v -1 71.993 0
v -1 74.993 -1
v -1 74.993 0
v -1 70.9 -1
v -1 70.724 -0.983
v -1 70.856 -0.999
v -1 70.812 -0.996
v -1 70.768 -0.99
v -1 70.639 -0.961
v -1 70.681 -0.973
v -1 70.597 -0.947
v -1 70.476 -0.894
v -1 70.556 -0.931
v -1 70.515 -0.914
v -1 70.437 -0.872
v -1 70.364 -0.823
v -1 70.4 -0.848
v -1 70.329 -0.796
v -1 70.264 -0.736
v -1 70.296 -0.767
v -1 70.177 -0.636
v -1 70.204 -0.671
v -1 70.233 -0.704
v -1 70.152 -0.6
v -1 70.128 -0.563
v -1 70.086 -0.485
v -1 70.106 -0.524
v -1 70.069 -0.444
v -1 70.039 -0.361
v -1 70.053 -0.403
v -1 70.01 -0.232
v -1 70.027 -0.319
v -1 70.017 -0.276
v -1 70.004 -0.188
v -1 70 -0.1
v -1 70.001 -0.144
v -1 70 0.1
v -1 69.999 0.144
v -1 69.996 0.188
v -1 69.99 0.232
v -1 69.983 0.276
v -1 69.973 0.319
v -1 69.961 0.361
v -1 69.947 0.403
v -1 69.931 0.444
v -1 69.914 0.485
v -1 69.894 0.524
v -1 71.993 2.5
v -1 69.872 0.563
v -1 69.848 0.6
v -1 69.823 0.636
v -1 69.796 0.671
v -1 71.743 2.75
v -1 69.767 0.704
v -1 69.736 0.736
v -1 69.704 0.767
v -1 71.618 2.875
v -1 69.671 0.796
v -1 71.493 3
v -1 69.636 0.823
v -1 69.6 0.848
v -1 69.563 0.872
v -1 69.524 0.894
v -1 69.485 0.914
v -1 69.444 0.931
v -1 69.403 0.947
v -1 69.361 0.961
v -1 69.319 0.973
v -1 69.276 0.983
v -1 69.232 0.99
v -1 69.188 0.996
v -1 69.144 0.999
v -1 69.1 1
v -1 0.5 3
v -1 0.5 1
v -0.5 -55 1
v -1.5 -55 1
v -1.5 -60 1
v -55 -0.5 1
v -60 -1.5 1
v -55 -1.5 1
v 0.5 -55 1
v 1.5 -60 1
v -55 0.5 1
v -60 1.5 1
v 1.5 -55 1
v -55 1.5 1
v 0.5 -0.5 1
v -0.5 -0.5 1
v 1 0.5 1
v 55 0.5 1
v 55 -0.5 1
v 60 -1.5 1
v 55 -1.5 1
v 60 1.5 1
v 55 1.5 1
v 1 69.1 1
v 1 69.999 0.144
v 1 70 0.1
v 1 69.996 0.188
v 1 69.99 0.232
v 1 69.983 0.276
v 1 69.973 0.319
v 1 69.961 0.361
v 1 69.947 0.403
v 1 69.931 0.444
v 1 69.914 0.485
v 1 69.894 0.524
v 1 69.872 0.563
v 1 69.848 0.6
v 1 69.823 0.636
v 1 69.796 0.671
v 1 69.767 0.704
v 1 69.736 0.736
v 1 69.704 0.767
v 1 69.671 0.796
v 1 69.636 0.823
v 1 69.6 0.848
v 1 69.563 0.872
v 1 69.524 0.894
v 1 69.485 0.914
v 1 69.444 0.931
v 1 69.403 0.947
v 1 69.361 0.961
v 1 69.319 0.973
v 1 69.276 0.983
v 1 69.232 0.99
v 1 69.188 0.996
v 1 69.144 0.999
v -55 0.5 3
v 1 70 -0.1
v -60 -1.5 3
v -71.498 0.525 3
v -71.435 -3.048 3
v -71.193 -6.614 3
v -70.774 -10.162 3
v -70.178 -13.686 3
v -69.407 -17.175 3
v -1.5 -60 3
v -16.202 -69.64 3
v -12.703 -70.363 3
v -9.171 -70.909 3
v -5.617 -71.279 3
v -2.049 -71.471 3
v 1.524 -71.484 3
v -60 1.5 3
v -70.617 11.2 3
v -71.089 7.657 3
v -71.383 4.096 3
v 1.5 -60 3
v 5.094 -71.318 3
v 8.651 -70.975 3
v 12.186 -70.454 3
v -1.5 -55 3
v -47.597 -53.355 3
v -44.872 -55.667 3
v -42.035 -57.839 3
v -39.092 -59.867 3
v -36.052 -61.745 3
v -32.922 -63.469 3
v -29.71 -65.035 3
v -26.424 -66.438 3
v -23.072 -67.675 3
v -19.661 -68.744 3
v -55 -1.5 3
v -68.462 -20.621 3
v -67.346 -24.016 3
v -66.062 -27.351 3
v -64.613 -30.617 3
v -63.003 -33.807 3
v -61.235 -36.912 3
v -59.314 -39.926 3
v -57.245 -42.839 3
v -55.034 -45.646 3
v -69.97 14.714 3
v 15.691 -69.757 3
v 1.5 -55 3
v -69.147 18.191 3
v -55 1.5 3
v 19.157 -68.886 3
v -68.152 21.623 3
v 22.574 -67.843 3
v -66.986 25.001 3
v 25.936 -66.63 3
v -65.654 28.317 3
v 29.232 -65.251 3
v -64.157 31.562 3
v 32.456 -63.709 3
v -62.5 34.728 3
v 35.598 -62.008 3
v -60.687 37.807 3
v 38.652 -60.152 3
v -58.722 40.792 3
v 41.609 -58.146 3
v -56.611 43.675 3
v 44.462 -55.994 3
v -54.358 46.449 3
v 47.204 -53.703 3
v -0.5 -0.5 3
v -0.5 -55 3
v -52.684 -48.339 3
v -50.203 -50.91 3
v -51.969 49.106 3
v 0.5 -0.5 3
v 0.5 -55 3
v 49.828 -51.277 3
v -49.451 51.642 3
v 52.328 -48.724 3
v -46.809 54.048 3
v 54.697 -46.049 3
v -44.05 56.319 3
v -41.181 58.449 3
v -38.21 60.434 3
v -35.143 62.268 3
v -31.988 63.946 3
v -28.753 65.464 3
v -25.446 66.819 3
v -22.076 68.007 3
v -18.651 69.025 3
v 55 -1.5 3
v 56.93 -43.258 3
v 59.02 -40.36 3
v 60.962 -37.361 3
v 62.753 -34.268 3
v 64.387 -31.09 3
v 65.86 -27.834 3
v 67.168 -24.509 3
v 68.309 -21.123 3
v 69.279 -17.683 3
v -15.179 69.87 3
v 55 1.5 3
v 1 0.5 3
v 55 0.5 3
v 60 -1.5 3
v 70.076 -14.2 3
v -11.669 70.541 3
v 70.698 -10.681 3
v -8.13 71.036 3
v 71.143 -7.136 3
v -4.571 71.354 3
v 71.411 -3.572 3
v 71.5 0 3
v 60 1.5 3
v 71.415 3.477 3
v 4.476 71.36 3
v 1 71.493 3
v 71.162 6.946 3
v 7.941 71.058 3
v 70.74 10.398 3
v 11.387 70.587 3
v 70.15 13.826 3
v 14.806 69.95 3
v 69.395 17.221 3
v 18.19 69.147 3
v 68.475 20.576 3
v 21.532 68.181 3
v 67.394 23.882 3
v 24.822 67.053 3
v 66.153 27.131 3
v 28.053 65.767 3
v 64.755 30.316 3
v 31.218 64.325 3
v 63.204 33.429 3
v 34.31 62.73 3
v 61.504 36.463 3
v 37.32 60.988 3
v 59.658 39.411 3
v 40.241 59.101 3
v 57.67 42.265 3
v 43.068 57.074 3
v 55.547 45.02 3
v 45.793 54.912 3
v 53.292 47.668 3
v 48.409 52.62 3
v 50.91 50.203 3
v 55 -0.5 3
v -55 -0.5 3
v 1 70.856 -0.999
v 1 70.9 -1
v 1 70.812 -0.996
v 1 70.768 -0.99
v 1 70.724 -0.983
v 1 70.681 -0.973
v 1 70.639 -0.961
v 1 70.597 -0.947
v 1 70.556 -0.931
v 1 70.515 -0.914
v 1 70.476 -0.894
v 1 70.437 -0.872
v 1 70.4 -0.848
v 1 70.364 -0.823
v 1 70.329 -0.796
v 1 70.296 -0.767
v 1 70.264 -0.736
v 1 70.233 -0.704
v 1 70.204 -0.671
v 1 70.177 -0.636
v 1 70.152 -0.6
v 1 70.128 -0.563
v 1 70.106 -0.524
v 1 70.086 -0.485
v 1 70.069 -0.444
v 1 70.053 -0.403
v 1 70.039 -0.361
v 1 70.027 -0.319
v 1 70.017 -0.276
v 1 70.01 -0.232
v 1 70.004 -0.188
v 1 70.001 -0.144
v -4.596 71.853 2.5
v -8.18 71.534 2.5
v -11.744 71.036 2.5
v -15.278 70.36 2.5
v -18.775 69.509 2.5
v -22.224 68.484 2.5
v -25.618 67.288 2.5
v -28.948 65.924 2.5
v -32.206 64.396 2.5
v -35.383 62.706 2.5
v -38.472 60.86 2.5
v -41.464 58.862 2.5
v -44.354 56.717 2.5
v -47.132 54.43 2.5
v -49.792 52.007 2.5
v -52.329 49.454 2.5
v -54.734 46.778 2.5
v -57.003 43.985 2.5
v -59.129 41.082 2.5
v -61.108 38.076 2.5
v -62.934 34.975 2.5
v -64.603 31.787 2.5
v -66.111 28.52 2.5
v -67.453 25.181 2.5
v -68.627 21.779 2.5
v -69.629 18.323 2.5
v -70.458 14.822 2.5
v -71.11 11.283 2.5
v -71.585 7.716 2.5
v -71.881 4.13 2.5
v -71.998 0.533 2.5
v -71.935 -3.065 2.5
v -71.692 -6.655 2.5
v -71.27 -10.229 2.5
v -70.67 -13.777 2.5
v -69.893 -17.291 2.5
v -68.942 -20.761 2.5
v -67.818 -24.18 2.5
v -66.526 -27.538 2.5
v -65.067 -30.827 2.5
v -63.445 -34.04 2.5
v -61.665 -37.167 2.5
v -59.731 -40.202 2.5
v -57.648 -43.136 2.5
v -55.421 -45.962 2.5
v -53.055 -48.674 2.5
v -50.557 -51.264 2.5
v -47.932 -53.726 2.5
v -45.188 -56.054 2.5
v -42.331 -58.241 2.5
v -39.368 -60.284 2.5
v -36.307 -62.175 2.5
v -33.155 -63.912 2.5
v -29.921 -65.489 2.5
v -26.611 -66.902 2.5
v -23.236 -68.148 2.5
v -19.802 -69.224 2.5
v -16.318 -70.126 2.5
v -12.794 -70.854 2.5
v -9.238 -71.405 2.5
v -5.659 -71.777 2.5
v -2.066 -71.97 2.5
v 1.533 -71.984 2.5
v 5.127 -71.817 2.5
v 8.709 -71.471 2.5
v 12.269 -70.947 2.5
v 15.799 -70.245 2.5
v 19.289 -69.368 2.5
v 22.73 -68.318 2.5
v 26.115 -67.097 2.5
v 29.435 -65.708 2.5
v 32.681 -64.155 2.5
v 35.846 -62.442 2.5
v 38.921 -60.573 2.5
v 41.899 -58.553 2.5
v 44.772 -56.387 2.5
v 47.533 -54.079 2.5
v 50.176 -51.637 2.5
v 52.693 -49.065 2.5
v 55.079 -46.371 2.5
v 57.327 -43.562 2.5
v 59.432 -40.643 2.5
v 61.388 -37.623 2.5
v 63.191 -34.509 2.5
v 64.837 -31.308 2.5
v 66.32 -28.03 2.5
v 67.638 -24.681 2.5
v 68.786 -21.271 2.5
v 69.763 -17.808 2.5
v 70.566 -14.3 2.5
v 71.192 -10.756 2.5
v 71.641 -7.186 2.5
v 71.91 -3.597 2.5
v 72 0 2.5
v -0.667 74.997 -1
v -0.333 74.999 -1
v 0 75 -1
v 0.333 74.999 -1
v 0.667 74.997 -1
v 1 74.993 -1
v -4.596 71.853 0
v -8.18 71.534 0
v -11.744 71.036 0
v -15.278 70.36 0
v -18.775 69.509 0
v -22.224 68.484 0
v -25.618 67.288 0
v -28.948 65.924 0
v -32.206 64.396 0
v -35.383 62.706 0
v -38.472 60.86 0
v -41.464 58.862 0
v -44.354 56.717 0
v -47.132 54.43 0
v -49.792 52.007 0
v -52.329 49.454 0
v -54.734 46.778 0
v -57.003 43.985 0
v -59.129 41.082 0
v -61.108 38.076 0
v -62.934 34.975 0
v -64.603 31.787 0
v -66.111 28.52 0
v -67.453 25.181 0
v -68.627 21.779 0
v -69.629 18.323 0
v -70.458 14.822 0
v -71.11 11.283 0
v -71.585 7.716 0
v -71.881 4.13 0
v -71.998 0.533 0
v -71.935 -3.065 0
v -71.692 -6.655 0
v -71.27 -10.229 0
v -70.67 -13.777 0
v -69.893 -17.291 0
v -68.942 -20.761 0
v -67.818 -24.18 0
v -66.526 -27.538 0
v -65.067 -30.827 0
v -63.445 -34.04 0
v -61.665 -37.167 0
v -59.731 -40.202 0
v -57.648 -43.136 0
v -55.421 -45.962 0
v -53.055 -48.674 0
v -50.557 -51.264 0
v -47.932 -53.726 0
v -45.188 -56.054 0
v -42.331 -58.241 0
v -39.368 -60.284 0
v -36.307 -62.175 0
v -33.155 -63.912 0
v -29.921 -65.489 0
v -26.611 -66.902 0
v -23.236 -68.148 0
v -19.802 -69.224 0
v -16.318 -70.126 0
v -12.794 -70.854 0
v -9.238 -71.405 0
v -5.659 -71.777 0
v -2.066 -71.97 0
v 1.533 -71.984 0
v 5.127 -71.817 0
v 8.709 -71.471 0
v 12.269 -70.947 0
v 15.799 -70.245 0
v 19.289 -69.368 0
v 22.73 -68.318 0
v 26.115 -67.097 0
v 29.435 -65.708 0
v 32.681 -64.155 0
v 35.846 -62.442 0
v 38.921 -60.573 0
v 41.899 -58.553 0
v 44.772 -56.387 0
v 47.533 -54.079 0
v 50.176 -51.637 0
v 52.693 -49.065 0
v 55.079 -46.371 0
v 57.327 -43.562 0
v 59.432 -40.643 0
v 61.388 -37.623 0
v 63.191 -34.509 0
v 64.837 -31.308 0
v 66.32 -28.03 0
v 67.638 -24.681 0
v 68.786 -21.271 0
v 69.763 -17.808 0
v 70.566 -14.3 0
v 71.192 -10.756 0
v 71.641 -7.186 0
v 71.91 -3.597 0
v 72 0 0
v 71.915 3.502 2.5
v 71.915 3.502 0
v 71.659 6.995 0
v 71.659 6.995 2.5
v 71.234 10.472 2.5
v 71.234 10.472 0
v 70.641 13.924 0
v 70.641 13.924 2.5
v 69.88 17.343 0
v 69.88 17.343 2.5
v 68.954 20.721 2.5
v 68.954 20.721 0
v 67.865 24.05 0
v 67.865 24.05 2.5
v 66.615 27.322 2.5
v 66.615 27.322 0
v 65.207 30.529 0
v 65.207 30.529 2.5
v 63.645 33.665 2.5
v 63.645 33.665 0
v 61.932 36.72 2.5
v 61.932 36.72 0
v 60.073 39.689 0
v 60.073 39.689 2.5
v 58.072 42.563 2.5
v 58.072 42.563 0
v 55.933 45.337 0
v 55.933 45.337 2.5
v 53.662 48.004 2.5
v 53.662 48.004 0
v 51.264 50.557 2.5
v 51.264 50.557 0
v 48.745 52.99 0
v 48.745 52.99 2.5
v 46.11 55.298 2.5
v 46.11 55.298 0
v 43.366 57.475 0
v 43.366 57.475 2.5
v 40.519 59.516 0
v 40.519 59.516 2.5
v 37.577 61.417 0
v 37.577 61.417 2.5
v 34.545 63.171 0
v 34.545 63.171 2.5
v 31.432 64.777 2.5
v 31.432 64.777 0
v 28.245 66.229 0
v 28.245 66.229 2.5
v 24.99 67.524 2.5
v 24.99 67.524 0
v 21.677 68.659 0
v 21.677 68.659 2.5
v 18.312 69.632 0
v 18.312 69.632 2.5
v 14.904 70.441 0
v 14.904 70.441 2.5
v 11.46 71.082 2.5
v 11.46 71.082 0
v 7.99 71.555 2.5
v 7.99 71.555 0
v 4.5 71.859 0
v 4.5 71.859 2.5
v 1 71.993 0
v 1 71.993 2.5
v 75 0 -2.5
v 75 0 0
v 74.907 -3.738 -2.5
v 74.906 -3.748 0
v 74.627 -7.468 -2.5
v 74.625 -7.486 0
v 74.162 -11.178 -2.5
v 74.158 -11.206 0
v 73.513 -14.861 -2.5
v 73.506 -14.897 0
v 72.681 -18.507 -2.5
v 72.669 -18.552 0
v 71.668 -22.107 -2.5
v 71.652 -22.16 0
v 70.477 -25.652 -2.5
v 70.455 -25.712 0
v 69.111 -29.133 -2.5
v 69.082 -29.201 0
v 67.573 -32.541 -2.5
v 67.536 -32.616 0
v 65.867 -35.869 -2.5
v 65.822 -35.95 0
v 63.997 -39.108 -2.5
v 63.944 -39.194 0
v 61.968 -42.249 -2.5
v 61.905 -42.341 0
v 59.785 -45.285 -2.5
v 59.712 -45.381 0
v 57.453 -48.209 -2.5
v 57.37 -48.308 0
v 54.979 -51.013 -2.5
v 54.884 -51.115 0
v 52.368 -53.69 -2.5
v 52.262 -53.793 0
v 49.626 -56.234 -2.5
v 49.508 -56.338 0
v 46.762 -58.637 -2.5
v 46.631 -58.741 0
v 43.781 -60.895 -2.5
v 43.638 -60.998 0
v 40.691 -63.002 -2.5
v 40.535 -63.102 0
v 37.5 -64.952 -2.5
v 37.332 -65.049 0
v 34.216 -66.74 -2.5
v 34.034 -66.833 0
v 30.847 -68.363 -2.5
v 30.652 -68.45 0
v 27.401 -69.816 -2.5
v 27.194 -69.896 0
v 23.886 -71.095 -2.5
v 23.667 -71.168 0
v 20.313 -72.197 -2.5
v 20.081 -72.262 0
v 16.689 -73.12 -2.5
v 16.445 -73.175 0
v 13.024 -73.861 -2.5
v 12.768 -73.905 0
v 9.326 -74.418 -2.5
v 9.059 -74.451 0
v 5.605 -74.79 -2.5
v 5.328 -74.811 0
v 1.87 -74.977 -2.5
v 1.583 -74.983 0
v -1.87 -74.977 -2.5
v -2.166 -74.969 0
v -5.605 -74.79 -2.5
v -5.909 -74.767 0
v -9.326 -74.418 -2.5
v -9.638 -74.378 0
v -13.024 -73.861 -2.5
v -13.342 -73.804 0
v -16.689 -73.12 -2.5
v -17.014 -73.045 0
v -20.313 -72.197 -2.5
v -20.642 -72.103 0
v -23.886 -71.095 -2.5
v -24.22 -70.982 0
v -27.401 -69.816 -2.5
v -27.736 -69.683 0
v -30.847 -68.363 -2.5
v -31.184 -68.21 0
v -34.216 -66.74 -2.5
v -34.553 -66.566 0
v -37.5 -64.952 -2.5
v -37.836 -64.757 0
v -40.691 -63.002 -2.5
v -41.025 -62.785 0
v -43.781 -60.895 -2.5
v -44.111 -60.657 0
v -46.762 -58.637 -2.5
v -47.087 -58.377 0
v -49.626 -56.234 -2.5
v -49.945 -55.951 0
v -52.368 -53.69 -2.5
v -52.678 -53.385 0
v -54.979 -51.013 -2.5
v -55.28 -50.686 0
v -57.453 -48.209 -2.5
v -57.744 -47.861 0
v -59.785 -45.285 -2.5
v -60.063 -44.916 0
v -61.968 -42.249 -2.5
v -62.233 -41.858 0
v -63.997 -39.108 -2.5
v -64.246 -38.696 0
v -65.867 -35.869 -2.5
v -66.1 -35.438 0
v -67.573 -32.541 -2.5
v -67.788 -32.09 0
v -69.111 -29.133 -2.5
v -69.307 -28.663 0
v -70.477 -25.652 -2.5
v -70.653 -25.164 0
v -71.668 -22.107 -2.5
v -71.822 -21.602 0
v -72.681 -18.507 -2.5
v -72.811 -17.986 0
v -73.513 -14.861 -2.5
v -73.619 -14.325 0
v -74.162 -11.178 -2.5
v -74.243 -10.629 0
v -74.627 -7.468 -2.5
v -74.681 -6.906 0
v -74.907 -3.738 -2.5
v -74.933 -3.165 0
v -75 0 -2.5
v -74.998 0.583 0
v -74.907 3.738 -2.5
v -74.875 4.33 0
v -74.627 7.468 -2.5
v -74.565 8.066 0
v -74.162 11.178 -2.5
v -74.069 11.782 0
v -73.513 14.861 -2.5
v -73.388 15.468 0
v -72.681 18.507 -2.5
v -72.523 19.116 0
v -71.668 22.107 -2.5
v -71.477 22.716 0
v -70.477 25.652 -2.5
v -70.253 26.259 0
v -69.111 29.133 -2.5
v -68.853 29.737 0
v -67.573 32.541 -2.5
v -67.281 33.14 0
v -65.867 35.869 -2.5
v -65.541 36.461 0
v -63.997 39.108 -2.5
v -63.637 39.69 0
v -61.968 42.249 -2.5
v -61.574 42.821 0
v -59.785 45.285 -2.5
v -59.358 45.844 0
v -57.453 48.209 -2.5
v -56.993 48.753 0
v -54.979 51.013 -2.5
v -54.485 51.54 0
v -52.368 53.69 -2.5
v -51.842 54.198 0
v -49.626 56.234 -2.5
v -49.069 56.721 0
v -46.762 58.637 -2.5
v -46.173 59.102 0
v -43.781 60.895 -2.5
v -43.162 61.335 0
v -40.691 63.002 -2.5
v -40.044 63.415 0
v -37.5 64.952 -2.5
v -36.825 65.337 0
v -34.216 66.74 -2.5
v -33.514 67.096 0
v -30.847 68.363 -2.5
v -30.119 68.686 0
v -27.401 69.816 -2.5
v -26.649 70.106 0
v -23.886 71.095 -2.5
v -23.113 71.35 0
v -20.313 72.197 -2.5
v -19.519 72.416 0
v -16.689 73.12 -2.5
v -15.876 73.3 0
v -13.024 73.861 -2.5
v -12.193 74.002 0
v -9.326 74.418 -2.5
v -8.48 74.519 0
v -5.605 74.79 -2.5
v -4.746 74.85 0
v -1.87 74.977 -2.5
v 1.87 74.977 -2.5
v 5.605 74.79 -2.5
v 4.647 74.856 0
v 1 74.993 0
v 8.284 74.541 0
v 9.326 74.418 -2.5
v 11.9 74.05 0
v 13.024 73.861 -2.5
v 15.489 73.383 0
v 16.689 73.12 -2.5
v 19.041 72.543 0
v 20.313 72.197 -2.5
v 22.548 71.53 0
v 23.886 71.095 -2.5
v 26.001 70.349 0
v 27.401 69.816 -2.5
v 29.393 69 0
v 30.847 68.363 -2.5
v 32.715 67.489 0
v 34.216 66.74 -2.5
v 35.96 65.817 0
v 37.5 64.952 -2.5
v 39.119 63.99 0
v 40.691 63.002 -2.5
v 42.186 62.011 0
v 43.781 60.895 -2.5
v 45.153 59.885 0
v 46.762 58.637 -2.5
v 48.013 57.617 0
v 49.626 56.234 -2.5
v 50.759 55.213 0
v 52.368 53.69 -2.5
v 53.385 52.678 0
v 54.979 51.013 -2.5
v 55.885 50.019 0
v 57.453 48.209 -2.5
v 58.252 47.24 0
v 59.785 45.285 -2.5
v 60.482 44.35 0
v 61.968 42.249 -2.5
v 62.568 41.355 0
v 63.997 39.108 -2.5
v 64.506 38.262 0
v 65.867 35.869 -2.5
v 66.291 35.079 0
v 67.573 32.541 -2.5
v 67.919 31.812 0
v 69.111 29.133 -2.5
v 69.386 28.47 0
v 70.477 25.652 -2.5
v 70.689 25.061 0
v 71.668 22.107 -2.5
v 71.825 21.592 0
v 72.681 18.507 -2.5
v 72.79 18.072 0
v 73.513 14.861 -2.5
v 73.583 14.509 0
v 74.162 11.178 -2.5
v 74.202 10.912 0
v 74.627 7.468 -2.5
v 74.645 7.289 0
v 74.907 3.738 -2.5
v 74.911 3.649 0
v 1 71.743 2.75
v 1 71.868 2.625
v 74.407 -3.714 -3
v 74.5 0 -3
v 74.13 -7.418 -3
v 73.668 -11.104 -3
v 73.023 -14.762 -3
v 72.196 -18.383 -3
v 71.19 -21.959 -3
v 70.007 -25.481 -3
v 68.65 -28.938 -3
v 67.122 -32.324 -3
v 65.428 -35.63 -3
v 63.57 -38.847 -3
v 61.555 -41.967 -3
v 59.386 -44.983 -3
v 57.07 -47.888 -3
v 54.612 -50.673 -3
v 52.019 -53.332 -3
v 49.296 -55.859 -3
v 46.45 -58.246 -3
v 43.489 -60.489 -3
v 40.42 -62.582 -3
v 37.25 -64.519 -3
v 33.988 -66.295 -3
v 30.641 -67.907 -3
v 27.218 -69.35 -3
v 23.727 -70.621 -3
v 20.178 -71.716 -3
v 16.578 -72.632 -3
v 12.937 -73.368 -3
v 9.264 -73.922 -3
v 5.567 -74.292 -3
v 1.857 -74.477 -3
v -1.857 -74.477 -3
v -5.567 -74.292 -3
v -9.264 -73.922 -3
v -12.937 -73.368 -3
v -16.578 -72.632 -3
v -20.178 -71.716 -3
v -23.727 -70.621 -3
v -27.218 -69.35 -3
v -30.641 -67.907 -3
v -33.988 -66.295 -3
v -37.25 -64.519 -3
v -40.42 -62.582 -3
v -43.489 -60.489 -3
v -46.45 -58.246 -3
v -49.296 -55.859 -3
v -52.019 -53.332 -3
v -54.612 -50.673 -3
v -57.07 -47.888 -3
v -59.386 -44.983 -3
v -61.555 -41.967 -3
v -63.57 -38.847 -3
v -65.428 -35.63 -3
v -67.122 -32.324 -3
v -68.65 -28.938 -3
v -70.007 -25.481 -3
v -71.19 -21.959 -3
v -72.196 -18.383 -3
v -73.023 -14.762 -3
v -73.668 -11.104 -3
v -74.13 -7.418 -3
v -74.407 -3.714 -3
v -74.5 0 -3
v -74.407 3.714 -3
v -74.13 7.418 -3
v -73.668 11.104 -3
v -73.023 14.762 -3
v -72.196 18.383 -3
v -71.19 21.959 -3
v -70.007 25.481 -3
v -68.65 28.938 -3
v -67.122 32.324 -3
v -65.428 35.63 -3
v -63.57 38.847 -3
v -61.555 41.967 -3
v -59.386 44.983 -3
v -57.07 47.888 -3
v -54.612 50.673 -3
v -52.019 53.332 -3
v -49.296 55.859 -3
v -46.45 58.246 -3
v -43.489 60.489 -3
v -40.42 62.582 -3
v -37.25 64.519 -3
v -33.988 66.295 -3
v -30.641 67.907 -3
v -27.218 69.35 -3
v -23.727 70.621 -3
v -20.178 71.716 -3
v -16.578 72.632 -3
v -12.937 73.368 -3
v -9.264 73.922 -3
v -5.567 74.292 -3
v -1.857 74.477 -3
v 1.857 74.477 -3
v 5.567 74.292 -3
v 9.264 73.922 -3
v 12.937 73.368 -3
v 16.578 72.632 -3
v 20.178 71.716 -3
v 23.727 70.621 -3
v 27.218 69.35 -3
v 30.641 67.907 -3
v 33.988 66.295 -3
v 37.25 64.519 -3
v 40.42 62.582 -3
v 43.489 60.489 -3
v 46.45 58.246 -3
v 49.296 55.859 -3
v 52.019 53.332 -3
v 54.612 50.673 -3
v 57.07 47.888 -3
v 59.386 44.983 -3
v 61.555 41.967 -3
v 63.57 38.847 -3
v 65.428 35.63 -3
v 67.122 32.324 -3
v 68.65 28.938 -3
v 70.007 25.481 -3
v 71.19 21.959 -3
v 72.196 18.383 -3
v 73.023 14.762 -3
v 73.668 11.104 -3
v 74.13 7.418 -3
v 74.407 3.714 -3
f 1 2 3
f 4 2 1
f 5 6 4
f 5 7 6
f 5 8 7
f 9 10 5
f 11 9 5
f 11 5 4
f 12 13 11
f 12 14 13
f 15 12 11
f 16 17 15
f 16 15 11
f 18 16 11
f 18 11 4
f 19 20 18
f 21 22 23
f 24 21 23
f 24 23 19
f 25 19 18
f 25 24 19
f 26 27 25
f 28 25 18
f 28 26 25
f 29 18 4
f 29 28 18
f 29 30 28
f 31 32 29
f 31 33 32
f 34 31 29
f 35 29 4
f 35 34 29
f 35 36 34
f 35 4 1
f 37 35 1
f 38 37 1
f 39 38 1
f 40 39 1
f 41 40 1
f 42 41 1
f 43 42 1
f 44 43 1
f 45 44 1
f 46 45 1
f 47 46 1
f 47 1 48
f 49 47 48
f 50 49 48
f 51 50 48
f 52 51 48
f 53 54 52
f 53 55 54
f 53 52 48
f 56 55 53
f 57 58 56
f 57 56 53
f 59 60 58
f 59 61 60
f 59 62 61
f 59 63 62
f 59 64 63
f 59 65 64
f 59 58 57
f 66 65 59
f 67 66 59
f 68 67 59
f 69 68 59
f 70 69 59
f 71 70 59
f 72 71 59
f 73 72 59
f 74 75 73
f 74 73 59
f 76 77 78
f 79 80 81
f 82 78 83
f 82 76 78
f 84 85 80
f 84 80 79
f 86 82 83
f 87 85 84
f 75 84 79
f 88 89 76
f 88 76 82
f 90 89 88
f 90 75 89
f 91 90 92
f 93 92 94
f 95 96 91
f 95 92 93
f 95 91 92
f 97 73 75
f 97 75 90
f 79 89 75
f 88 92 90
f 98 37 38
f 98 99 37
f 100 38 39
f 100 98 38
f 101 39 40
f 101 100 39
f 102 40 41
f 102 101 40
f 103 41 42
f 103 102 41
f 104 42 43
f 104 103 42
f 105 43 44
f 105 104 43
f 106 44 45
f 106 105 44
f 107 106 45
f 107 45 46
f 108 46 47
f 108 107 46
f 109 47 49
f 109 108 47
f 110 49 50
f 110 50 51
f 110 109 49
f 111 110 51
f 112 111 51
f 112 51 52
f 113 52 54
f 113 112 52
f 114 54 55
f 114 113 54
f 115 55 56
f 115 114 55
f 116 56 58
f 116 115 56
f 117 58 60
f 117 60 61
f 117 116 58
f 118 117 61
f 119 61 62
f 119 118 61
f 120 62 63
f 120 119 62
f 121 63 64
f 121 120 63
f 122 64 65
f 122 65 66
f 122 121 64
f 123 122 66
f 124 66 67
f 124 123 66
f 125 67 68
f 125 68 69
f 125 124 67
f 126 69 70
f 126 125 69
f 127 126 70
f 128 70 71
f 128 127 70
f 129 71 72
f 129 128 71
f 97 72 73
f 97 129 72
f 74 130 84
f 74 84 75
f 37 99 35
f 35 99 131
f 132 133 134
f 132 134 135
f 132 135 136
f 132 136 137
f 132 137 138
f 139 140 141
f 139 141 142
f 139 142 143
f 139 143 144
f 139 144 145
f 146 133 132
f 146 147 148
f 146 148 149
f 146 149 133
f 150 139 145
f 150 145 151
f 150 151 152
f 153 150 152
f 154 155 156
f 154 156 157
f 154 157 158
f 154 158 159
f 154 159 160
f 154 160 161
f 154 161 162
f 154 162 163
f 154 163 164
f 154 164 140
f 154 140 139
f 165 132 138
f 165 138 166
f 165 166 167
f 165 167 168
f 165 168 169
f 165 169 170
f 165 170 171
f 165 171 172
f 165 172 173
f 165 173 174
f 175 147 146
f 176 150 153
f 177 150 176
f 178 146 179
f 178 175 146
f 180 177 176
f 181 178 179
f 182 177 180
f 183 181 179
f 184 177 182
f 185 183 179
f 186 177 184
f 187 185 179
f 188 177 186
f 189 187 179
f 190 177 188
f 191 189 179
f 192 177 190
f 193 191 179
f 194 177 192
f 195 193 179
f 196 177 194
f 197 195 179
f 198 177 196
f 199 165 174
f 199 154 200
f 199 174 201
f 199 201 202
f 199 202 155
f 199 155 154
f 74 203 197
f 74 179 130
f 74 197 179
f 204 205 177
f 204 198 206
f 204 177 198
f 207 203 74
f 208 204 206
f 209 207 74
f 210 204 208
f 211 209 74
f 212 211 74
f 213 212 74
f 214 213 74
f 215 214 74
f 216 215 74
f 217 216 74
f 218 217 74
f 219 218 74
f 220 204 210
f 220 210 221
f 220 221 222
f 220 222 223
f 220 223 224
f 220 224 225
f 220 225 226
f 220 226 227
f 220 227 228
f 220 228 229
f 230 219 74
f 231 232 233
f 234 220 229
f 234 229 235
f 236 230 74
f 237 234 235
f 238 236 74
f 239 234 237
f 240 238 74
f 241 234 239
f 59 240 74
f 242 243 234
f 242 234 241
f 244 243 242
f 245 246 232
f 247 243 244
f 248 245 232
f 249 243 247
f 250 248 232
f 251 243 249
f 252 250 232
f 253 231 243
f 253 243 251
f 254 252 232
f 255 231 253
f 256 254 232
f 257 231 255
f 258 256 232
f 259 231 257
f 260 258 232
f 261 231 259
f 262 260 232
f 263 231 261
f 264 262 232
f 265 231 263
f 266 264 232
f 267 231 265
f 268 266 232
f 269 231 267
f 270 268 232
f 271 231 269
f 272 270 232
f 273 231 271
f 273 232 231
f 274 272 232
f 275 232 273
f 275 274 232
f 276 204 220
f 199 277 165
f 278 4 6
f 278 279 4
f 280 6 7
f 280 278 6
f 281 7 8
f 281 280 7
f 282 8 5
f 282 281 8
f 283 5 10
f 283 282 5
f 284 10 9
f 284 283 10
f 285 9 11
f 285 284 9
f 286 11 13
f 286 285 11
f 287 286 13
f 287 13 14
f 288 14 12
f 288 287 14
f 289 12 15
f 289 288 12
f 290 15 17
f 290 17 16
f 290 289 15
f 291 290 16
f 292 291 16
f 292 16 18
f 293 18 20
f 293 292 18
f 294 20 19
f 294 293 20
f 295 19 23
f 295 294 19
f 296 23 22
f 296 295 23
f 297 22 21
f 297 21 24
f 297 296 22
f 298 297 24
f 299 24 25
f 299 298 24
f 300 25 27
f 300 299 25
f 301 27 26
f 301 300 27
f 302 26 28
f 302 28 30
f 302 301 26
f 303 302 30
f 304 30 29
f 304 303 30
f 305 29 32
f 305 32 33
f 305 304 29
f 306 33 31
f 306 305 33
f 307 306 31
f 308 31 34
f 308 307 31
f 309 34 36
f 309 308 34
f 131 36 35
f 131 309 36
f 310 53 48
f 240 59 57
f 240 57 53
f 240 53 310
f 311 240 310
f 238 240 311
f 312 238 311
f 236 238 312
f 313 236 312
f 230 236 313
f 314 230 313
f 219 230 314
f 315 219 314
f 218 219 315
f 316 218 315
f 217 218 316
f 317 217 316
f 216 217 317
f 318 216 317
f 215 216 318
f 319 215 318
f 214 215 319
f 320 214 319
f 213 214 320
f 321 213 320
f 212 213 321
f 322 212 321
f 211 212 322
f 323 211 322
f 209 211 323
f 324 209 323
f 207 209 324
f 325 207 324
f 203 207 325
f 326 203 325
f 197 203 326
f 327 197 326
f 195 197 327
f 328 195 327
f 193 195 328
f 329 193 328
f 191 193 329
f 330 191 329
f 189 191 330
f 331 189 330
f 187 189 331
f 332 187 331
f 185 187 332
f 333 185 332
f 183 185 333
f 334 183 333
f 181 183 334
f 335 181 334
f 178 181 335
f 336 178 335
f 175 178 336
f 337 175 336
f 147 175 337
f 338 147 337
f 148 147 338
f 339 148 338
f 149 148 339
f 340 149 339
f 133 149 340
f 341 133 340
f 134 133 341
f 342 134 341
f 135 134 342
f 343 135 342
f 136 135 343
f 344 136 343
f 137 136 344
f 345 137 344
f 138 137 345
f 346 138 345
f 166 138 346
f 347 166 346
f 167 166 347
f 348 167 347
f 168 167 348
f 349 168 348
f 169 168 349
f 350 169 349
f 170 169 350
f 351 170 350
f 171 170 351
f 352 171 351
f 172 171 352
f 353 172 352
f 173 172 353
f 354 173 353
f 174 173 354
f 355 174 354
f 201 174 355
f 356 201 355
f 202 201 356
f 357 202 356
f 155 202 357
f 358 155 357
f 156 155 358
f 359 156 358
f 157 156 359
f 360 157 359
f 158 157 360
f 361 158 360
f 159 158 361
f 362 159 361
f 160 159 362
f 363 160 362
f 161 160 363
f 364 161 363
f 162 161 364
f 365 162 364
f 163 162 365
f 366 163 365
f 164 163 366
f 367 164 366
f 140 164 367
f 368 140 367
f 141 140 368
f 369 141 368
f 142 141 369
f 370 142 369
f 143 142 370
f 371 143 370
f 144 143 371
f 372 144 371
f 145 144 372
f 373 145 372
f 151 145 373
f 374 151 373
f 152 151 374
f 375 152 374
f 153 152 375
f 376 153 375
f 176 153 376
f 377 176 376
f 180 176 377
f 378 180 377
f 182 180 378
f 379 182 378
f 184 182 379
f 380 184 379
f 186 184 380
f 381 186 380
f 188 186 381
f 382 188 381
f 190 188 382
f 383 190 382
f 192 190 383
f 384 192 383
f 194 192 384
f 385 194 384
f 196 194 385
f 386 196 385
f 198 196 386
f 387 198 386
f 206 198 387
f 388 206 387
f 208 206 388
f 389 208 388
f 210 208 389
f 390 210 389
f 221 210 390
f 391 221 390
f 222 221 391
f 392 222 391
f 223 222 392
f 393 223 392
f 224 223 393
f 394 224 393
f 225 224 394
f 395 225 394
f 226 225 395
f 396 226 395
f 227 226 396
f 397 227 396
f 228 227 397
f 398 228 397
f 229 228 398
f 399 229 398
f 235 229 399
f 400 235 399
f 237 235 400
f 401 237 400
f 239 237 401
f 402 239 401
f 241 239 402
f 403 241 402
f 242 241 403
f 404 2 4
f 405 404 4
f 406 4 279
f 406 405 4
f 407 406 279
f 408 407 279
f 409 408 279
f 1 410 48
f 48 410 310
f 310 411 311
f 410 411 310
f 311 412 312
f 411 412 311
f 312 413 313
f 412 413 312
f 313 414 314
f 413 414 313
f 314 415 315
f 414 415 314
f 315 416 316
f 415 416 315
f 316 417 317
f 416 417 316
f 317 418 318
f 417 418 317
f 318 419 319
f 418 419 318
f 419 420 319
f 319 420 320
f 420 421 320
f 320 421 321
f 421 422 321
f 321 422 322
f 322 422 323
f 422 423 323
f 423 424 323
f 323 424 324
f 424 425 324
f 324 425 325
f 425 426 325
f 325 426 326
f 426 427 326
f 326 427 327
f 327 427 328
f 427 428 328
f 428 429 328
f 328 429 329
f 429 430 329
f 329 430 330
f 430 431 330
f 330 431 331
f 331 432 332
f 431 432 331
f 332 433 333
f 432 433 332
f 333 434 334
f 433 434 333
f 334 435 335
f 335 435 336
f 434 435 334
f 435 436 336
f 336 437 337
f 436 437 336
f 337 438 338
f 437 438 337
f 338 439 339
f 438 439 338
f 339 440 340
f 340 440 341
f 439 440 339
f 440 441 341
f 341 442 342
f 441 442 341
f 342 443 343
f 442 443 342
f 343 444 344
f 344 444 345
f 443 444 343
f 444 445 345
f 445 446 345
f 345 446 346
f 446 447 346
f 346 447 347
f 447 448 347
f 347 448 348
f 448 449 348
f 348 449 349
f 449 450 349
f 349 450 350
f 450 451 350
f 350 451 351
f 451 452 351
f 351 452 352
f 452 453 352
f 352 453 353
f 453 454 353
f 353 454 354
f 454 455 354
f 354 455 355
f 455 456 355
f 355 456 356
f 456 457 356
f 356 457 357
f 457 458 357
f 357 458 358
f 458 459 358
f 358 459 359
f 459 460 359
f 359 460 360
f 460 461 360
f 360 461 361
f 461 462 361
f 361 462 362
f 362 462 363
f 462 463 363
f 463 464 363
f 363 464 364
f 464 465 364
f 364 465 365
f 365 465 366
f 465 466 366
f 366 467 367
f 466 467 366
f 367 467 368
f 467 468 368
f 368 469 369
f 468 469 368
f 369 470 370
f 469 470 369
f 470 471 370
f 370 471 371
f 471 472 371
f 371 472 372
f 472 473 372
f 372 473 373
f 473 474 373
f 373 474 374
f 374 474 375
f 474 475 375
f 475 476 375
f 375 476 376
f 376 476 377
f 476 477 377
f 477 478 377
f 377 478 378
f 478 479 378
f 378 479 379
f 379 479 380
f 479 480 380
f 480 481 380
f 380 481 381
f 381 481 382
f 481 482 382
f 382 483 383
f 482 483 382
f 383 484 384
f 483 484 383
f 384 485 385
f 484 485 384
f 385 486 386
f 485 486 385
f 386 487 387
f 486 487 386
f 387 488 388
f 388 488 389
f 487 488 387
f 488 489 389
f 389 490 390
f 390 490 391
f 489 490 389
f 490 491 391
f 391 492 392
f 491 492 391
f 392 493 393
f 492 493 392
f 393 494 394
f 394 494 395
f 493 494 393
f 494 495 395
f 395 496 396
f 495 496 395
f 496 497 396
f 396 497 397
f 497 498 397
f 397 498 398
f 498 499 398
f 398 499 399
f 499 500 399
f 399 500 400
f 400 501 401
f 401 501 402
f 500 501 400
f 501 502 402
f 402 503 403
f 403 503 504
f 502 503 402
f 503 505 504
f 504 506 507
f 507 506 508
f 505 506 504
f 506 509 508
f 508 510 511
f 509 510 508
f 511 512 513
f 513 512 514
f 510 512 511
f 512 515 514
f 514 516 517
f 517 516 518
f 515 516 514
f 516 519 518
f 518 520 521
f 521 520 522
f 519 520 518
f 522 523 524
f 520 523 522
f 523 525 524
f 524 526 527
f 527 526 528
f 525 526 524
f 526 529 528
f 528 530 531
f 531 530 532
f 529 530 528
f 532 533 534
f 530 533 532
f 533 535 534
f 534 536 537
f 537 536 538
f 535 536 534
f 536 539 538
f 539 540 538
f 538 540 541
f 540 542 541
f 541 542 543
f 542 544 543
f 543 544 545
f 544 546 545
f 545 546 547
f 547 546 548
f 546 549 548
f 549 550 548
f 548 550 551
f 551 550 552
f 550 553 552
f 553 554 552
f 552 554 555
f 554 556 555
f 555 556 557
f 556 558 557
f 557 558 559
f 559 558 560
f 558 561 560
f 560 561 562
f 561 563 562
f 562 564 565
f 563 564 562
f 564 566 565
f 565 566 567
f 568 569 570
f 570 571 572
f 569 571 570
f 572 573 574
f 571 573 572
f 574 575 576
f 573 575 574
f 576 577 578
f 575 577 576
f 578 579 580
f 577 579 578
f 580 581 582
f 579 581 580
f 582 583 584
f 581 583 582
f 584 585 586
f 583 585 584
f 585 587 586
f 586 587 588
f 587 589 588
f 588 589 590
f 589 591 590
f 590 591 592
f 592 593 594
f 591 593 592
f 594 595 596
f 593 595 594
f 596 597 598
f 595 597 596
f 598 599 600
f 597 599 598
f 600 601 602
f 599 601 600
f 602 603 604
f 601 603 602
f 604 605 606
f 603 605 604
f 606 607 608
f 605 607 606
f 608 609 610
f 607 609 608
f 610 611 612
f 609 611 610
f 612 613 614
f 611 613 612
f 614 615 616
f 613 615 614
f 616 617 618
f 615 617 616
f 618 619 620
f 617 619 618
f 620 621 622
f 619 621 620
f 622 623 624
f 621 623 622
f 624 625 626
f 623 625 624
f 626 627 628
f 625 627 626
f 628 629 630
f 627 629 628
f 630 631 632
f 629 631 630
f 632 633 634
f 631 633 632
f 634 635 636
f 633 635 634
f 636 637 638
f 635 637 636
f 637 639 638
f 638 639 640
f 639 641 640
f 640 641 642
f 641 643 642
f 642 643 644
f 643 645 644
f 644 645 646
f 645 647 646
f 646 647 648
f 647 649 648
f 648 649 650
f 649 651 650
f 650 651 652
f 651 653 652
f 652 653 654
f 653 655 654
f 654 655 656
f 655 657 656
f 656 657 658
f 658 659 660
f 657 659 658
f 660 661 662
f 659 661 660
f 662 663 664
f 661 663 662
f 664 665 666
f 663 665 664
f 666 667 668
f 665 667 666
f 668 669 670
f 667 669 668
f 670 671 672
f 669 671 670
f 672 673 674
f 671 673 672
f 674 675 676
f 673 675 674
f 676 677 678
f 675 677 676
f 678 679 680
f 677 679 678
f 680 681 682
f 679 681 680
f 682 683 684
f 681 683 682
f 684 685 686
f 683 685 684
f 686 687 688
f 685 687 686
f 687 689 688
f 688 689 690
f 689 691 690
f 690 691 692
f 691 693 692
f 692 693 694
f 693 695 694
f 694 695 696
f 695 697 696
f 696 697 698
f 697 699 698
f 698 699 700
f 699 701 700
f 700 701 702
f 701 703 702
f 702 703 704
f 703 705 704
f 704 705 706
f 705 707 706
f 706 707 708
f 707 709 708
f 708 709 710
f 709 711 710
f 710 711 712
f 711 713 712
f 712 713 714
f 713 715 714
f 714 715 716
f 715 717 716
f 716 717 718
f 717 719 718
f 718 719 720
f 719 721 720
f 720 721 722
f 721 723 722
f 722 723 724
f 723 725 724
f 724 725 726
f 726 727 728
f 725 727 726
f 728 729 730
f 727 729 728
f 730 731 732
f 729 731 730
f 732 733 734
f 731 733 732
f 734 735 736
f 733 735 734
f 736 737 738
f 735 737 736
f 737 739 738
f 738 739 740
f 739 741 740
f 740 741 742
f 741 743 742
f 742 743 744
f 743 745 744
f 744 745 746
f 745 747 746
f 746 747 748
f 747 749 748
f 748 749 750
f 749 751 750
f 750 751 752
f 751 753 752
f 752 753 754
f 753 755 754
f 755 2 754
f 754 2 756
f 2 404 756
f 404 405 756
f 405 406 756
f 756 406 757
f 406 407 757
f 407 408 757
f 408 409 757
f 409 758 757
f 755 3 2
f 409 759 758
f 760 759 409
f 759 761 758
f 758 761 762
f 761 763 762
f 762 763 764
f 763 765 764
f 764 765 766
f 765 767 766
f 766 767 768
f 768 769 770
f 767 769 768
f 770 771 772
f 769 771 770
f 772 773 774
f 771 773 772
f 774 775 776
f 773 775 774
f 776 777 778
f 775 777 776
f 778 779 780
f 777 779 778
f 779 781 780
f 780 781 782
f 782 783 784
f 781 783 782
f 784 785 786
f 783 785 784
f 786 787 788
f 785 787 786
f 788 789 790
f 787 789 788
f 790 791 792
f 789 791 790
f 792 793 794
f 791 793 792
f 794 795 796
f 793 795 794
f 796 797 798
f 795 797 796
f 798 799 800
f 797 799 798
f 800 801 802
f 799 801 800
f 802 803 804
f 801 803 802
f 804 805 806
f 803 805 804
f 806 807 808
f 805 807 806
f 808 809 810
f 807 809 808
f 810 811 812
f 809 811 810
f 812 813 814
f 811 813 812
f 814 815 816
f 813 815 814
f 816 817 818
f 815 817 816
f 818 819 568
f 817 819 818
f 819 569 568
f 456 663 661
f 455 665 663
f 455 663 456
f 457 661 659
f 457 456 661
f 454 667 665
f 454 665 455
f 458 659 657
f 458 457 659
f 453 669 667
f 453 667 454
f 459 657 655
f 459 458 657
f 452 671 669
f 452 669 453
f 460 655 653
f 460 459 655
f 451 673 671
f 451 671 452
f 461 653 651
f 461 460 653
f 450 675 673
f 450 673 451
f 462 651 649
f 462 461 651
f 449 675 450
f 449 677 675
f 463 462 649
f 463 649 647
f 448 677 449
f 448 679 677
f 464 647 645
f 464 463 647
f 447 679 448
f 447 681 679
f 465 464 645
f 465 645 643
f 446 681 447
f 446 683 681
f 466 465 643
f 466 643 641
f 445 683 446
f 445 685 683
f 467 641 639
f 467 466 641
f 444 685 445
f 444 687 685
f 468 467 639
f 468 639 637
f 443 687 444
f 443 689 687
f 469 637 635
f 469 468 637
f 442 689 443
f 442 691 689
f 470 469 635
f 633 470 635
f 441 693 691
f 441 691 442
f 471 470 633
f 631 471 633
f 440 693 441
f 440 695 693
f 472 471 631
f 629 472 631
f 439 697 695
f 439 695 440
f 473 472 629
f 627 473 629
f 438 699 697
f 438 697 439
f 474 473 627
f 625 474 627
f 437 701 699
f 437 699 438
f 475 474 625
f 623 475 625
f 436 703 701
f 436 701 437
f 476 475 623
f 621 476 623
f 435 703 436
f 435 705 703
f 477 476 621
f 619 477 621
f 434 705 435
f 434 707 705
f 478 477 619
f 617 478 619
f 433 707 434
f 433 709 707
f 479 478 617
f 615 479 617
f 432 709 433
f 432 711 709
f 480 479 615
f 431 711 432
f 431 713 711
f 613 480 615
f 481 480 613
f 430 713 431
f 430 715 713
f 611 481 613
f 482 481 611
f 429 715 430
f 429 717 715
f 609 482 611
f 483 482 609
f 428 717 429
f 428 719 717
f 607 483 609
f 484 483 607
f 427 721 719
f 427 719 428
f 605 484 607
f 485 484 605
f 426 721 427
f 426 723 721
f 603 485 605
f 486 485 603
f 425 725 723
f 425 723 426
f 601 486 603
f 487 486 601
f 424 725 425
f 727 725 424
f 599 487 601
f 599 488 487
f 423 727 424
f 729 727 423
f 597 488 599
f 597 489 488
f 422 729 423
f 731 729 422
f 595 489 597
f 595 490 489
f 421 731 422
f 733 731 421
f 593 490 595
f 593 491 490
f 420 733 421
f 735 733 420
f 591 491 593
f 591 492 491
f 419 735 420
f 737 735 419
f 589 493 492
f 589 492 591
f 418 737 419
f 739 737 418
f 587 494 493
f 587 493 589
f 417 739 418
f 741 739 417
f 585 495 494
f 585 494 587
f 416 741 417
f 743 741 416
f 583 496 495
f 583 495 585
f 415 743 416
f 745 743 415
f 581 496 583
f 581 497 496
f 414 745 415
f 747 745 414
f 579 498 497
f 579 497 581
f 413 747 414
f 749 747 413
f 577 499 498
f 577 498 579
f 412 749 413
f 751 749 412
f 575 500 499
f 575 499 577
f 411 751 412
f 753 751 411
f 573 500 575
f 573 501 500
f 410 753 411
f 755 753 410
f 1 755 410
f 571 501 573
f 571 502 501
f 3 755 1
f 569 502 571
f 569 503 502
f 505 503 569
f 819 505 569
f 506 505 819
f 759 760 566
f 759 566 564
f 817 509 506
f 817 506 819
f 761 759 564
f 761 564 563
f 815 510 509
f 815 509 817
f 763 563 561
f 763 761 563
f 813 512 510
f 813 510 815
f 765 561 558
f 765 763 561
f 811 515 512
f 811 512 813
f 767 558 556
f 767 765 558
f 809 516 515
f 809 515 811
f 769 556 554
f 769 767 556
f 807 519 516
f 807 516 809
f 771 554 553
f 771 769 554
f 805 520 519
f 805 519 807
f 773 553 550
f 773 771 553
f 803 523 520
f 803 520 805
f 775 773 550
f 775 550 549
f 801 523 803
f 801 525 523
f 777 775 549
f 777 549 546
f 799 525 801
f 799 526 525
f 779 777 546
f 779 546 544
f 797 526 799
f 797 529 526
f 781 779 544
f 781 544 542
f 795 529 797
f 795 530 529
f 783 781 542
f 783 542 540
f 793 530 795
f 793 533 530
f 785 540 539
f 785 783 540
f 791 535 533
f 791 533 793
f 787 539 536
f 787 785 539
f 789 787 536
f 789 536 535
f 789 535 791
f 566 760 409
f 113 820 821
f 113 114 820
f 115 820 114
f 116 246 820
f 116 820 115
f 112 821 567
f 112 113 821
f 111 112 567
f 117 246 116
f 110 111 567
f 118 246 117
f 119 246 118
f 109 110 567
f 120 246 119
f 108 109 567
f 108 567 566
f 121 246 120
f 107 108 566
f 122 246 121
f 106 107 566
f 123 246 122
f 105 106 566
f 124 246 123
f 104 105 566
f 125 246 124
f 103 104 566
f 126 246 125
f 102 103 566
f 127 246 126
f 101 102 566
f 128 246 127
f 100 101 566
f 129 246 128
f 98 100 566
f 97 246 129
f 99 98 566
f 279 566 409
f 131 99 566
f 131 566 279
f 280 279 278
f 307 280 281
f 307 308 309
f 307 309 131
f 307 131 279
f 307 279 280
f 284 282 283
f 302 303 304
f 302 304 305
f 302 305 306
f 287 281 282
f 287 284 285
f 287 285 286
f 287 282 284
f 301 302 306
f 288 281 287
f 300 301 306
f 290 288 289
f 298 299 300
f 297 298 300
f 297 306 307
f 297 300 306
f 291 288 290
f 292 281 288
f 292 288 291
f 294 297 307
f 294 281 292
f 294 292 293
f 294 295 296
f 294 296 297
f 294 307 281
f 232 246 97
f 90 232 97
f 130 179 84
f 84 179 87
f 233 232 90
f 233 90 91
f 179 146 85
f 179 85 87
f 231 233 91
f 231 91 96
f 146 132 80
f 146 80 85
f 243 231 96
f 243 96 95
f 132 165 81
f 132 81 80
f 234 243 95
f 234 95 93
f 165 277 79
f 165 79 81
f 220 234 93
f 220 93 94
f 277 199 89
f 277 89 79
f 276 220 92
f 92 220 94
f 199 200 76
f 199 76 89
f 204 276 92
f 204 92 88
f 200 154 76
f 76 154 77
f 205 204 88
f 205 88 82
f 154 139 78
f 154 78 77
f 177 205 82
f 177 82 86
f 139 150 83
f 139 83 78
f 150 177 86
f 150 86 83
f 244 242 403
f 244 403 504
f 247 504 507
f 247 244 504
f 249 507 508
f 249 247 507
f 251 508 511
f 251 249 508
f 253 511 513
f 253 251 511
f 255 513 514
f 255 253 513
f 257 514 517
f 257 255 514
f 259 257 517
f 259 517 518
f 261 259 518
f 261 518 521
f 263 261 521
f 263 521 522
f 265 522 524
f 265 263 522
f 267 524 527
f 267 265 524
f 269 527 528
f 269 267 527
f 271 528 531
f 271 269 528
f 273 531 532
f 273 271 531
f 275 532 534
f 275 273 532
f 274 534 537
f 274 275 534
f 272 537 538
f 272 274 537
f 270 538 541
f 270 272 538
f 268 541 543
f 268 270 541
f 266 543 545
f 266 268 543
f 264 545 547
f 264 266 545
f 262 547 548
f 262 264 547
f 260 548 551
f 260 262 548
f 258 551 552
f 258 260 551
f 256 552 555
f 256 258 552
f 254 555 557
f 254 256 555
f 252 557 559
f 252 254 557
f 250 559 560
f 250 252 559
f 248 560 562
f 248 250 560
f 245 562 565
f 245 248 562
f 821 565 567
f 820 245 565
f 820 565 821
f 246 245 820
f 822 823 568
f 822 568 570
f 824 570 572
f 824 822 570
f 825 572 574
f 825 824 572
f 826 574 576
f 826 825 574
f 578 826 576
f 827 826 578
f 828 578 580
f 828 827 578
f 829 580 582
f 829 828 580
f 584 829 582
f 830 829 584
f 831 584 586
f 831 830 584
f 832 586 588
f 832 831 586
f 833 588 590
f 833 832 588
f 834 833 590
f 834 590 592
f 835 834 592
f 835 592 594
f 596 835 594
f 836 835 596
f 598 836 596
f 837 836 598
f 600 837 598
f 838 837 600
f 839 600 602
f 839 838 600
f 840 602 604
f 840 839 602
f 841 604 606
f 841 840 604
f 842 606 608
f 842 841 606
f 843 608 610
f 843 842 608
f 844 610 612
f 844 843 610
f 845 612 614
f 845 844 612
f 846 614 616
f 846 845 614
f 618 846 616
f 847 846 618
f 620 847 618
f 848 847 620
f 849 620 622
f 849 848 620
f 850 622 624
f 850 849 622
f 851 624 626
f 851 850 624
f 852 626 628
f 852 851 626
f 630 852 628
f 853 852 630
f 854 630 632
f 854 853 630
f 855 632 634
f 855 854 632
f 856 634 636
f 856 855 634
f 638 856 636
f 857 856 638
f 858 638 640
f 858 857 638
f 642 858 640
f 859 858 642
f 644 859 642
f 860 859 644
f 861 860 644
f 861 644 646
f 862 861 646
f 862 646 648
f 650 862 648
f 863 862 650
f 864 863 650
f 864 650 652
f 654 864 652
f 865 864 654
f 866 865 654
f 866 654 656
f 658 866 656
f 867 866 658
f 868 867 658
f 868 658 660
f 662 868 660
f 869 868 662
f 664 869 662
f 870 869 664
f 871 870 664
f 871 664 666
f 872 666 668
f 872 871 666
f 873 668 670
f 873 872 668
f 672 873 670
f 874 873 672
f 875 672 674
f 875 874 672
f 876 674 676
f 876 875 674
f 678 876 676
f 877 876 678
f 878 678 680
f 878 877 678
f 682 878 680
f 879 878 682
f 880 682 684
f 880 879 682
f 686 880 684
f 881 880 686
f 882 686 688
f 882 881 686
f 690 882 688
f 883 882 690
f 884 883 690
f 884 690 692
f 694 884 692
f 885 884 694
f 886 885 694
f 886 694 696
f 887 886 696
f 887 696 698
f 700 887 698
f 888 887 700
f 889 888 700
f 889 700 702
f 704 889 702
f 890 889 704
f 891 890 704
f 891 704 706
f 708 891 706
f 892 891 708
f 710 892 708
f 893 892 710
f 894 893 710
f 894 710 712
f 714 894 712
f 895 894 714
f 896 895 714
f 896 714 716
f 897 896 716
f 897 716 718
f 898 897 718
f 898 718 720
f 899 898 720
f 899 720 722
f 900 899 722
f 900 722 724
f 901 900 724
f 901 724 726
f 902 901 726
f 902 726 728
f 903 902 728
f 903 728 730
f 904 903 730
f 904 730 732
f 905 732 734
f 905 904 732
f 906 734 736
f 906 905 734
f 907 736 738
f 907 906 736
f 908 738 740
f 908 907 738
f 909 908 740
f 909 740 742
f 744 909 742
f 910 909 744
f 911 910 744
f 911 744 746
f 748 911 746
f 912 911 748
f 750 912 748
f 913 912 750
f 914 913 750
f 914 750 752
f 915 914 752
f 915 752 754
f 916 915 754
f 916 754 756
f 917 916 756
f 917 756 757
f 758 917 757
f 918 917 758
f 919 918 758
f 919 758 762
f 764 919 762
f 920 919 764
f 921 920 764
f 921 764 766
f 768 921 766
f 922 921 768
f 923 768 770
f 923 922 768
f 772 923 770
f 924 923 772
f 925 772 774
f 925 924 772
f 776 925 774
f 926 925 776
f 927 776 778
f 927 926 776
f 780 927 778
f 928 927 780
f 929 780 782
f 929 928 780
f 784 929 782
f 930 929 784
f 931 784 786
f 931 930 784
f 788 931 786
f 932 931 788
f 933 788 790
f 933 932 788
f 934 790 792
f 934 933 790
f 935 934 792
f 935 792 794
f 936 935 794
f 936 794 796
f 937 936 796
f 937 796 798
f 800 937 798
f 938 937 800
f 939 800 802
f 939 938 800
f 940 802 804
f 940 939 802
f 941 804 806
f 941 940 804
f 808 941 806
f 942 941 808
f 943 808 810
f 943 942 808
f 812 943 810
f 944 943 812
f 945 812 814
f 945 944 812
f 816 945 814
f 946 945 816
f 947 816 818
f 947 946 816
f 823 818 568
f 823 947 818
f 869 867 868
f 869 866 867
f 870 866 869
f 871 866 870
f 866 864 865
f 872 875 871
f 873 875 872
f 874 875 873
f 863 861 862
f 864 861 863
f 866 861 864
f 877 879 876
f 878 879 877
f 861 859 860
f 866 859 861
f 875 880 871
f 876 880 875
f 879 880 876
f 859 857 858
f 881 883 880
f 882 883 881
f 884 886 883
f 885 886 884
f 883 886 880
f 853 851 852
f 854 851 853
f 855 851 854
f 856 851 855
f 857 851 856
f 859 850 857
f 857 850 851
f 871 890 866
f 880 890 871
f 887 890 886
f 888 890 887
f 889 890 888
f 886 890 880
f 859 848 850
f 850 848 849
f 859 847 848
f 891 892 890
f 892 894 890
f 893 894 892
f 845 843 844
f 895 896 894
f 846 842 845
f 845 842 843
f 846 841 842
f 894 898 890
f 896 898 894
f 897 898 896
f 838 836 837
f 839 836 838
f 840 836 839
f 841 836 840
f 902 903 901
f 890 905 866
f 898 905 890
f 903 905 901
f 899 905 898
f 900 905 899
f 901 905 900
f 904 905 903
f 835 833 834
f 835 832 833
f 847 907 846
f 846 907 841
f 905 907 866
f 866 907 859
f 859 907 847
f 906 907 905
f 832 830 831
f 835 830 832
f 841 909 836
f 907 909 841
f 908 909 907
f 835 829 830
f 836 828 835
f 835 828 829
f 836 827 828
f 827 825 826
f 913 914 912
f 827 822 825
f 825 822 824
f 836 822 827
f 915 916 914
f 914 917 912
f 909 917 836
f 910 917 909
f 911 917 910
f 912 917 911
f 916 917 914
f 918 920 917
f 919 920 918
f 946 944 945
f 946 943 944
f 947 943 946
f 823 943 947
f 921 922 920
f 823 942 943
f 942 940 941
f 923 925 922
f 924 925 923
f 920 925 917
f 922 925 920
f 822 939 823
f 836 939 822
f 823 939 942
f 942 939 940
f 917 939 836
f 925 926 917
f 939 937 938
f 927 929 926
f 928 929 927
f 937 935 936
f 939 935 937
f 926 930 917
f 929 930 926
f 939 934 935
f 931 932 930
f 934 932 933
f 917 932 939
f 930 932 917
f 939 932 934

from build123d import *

# Parameters (mm, degrees)
SKETCH_R           = 72
PAD_DEPTH          = 3
SKETCH001_R        = 75
PAD001_DEPTH       = 3
CHAMFER_SIZE       = 0.5
CHAMFER001_SIZE    = 0.5
POCKET_DEPTH       = 2
POLARPATTERN_COUNT = 3
POLARPATTERN_ANGLE = 180
SKETCH003_W        = 2
SKETCH003_H        = 72
POCKET001_DEPTH    = 2
SKETCH004_W        = 2
SKETCH004_H        = 5
POCKET002_DEPTH    = 4
FILLET_R           = 0.9


with BuildPart() as part:
    # Sketch → Pad (new body)
    with BuildSketch(Plane.XY):
        Circle(SKETCH_R)
    extrude(amount=PAD_DEPTH)

    # Sketch001 (on Face2 of Pad) → Pad001 (join)
    with BuildSketch(Plane(origin=(0, 0, 0), x_dir=(1, 0, 0), z_dir=(0, 0, -1))):
        Circle(SKETCH001_R)
    extrude(amount=PAD001_DEPTH)

    # Chamfer
    chamfer_edges = [part.edges().sort_by_distance(p)[0] for p in [
        (-75, 0, -3),
    ]]
    chamfer(chamfer_edges, length=CHAMFER_SIZE)

    # Chamfer001
    chamfer001_edges = [part.edges().sort_by_distance(p)[0] for p in [
        (-72, 0, 3),
    ]]
    chamfer(chamfer001_edges, length=CHAMFER001_SIZE)

    # Sketch002 (on Face4 of Chamfer001) → Pocket (cut)
    with BuildSketch(Plane.XY.offset(3)):
        Polygon((-60, -1.5), (-60, 1.5), (-55, 1.5), (-55, 0.5), (0, 0.5), (0, -0.5), (-55, -0.5), (-55, -1.5), align=None)
    pocket = extrude(amount=-POCKET_DEPTH, mode=Mode.SUBTRACT)

    # PolarPattern: Pocket ×3 about axis
    polarpattern_axis = Axis((0, 0, 3), (0, 0, 1))
    for i in range(1, POLARPATTERN_COUNT):
        add(pocket.rotate(polarpattern_axis, i * POLARPATTERN_ANGLE / (POLARPATTERN_COUNT - 1)), mode=Mode.SUBTRACT)

    # Sketch003 (on Face4 of PolarPattern) → Pocket001 (cut)
    with BuildSketch(Plane.XY.offset(3)):
        with Locations((0, 36)):
            Rectangle(SKETCH003_W, SKETCH003_H)
    extrude(amount=-POCKET001_DEPTH, mode=Mode.SUBTRACT)

    # Sketch004 (on Face8 of Pocket001) → Pocket002 (cut)
    with BuildSketch(Plane.XY.offset(3)):
        with Locations((0, 72.5)):
            Rectangle(SKETCH004_W, SKETCH004_H)
    extrude(amount=-POCKET002_DEPTH, mode=Mode.SUBTRACT)

    # Fillet
    fillet_edges = [part.edges().sort_by_distance(p)[0] for p in [
        (0, 70, 1),
        (0, 70, -1),
    ]]
    fillet(fillet_edges, radius=FILLET_R)


solid = part.part
